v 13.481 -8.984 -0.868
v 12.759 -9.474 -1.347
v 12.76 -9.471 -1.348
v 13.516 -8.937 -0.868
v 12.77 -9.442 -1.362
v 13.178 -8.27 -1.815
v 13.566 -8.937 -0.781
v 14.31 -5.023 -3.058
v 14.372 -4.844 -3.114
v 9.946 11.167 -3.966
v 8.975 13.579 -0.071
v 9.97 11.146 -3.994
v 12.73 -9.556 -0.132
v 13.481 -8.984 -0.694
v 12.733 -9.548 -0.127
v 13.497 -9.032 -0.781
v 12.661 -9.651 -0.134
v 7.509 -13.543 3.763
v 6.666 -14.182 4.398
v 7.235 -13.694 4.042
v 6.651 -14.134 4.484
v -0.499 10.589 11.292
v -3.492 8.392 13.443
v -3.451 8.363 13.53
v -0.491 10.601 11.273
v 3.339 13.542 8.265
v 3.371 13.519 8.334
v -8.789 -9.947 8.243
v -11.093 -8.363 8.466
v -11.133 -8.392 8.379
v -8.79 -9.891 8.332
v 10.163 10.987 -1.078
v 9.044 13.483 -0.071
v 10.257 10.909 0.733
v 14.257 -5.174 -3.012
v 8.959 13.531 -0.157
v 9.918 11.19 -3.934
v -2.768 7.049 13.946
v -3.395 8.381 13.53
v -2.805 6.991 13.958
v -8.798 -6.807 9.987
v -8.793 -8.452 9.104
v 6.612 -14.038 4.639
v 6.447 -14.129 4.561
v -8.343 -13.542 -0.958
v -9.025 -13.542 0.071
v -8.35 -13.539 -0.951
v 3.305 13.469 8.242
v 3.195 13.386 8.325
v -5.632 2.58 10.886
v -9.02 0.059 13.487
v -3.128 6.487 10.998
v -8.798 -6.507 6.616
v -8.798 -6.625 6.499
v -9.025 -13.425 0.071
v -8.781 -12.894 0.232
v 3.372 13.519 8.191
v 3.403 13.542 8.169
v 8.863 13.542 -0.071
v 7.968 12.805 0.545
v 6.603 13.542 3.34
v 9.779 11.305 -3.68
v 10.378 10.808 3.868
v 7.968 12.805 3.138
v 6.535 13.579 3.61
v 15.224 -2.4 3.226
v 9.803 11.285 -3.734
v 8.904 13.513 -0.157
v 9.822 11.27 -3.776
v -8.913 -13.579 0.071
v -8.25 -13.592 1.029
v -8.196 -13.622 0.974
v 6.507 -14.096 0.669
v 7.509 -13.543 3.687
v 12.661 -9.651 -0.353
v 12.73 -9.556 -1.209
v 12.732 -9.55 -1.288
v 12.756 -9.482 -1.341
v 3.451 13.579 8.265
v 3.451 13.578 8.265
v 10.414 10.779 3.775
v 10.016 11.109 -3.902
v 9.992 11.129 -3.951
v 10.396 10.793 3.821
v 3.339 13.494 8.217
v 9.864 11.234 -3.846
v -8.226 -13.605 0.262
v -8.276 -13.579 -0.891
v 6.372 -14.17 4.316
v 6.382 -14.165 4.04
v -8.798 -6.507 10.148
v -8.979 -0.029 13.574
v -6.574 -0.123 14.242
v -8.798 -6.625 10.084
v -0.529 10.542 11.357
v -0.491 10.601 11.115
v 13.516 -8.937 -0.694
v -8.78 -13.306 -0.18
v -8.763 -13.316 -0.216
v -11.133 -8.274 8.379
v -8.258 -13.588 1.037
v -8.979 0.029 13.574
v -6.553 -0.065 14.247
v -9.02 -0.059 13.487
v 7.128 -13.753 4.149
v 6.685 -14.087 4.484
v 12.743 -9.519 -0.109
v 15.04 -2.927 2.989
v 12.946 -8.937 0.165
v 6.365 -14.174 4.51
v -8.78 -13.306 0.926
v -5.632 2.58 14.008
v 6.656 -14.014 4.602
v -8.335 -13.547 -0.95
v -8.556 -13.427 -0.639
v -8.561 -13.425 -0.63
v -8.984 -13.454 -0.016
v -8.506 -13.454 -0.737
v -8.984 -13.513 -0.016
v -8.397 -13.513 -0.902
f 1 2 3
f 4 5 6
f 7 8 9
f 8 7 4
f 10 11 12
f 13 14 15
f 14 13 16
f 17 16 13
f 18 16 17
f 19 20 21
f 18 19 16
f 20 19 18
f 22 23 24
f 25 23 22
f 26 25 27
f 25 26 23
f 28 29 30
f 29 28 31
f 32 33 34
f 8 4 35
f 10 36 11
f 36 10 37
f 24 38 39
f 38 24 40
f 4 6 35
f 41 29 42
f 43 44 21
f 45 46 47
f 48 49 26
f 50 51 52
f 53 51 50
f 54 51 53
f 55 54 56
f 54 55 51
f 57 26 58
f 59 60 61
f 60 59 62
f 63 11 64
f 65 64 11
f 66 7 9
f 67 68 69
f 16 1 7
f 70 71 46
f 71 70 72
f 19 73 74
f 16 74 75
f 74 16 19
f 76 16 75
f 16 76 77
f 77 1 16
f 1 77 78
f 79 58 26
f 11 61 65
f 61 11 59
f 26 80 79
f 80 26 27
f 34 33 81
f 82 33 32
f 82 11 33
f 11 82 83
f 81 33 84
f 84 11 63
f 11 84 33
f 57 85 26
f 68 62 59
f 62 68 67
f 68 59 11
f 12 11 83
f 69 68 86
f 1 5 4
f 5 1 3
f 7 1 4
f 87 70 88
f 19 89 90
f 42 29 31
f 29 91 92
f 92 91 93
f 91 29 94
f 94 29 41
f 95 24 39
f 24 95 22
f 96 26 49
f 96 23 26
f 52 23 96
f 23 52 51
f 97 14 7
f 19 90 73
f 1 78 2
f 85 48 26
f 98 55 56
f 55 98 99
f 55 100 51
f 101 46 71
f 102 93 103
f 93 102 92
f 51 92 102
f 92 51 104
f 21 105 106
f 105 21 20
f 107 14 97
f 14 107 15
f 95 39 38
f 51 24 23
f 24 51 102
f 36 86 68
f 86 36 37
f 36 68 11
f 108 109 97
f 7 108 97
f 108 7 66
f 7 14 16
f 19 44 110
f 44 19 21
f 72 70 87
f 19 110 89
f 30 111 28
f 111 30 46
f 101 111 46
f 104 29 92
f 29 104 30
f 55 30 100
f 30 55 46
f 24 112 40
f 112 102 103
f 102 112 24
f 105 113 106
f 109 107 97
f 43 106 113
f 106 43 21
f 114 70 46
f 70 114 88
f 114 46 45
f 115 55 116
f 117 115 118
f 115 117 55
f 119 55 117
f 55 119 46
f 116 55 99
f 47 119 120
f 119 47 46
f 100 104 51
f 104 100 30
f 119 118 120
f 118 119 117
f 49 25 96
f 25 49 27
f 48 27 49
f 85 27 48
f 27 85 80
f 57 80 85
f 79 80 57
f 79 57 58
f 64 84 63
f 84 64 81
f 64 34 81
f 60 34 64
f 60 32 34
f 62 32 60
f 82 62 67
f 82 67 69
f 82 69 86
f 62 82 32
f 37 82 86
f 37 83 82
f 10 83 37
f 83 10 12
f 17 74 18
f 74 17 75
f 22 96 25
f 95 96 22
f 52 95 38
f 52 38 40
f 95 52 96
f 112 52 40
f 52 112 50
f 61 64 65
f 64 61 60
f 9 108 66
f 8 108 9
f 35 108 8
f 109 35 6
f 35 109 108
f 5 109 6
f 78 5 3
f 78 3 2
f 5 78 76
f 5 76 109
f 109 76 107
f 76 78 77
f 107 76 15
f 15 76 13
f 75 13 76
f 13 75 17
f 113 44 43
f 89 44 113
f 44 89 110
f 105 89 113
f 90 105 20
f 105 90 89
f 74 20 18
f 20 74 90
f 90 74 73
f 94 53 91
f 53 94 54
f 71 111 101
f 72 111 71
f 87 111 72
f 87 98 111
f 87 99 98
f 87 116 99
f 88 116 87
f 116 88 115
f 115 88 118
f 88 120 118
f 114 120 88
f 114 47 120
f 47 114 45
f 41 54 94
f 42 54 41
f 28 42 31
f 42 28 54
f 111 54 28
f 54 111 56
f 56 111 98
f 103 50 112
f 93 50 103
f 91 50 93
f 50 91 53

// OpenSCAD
// Auto-generated OpenSCAD file

    inner_points = 10*[[-0.555121029674517, 0.252097973557222, 1.5076139678747007], [0.4789306739060282, -0.30582094958318945, -1.5076139678747007], [1.2783614762453286, 0.8694628743494993, 0.2856195091084527], [0.7478183893280848, -1.344745490869777, 0.5133766732484469], [0.44471109692947597, 0.23973508482260844, 1.52113719207135], [-0.8717455572000972, -0.6565892775398746, 1.235517682962897], [-0.04101019982741844, 1.0542321918178703, 1.203852958972461], [1.2812764981885028, -0.21163080548135457, -0.9182334498640081], [-0.03518015594107033, -1.1079551678438375, -1.203852958972461], [0.7955552014316083, 0.6028663015139072, -1.235517682962897], [0.7460168066892514, -0.6765928517116128, 1.2573987193505602], [-0.06759815027878918, -1.230551772596204, 1.0808761548714765], [1.2630426584795242, -0.9555523132818186, -0.25021524852414045], [0.44942770151148353, -1.50951123416641, -0.42673781300322433], [1.26012763653635, 0.1255413665490355, 0.9536377104483202], [-0.8699439745612638, -1.324741916698039, 0.49149563686078374], [0.4742140693240208, 1.443425369405829, 0.44026103719987336], [1.5796671860051041, -0.04686506218472162, 0.0218810363876632], [-0.5504044250925096, -1.4971483454317962, -0.44026103719987336], [0.793753618792775, 1.2710189406720718, -0.49149563686078374]];

    outer_points = 10*[[-0.8938608578754866, 0.0, 1.3487204141363005], [0.8938608578754866, 0.0, -1.3487204141363005], [1.174206570281529, 0.7960365198874888, 0.7782022732317085], [0.6635402669135327, -1.408673080510631, 0.439759542453489], [0.06899987944129649, -0.03728566145254908, 1.6161320443692175], [-1.1052066908402325, -0.8333221813400379, 0.8379297711375091], [-0.341090558415444, 0.8333221813400379, 1.344345700255859], [1.515297128696973, -0.03728566145254908, -0.5661434270241504], [0.341090558415444, -0.8333221813400379, -1.344345700255859], [1.1052066908402325, 0.8333221813400379, -0.8379297711375091], [0.4527347085711068, -0.8936516488632841, 1.2706108778413883], [-0.2729648616763203, -1.3856292744399337, 0.7896554228617598], [1.3465955664465934, -0.8936516488632841, -0.07810953629491224], [0.6208959961991664, -1.3856292744399337, -0.5590649912745407], [1.0055050080311494, -0.060329467523246194, 1.2662361639609467], [-0.8944011324978067, -1.3483436129873847, 0.007078435749609924], [0.3419647411176168, 1.3483436129873847, 0.8264766215074579], [1.5579413994113391, -0.060329467523246194, 0.43268110670387905], [-0.3419647411176168, -1.3483436129873847, -0.8264766215074579], [0.8944011324978067, 1.3483436129873847, -0.007078435749609924]];

    // Convex hull for inner set (I)
    module inner_hull() {
        hull() {
            for (p = inner_points) {
                translate(p) sphere(r=0.1);
            }
        }
    }

    // Convex hull for outer set (O) minus inner hull (O \ I)
    module outer_minus_inner() {
        difference() {
            hull() {
                for (p = outer_points) {
                    translate(p) sphere(r=0.1);
                }
            }
            inner_hull(); // Subtract inner hull
        }
    }

    // Convex hull for outer set (O) minus all translated inner hulls
    module outer_minus_AllTranslationInner() {
        difference() {
            hull() {
                for (p = outer_points) {
                    translate(p) sphere(r=0.1);
                }
            }
            hull() {
                translate([0,0,50]) inner_hull();
                translate([0,0,-50]) inner_hull();
            }; // Subtract translated inner hulls
        }
    }

    // Difference between outer_minus_inner and outer_minus_AllTranslationInner
    module outer_minus_inner_diff() {
        difference() {
            // Outer minus inner
            difference() {
                hull() {
                    for (p = outer_points) {
                        translate(p) sphere(r=0.1);
                    }
                }
                inner_hull();
            }

            // Subtract Outer minus AllTranslationInner
            difference() {
                hull() {
                    for (p = outer_points) {
                        translate(p) sphere(r=0.1);
                    }
                }
                hull() {
                    translate([0,0,50]) inner_hull();
                    translate([0,0,-50]) inner_hull();
                };
            }
        }
    }

    // Rendering all with colors applied
    color([0, 1, 0, 1]) outer_minus_AllTranslationInner(); // Opaque green
    
